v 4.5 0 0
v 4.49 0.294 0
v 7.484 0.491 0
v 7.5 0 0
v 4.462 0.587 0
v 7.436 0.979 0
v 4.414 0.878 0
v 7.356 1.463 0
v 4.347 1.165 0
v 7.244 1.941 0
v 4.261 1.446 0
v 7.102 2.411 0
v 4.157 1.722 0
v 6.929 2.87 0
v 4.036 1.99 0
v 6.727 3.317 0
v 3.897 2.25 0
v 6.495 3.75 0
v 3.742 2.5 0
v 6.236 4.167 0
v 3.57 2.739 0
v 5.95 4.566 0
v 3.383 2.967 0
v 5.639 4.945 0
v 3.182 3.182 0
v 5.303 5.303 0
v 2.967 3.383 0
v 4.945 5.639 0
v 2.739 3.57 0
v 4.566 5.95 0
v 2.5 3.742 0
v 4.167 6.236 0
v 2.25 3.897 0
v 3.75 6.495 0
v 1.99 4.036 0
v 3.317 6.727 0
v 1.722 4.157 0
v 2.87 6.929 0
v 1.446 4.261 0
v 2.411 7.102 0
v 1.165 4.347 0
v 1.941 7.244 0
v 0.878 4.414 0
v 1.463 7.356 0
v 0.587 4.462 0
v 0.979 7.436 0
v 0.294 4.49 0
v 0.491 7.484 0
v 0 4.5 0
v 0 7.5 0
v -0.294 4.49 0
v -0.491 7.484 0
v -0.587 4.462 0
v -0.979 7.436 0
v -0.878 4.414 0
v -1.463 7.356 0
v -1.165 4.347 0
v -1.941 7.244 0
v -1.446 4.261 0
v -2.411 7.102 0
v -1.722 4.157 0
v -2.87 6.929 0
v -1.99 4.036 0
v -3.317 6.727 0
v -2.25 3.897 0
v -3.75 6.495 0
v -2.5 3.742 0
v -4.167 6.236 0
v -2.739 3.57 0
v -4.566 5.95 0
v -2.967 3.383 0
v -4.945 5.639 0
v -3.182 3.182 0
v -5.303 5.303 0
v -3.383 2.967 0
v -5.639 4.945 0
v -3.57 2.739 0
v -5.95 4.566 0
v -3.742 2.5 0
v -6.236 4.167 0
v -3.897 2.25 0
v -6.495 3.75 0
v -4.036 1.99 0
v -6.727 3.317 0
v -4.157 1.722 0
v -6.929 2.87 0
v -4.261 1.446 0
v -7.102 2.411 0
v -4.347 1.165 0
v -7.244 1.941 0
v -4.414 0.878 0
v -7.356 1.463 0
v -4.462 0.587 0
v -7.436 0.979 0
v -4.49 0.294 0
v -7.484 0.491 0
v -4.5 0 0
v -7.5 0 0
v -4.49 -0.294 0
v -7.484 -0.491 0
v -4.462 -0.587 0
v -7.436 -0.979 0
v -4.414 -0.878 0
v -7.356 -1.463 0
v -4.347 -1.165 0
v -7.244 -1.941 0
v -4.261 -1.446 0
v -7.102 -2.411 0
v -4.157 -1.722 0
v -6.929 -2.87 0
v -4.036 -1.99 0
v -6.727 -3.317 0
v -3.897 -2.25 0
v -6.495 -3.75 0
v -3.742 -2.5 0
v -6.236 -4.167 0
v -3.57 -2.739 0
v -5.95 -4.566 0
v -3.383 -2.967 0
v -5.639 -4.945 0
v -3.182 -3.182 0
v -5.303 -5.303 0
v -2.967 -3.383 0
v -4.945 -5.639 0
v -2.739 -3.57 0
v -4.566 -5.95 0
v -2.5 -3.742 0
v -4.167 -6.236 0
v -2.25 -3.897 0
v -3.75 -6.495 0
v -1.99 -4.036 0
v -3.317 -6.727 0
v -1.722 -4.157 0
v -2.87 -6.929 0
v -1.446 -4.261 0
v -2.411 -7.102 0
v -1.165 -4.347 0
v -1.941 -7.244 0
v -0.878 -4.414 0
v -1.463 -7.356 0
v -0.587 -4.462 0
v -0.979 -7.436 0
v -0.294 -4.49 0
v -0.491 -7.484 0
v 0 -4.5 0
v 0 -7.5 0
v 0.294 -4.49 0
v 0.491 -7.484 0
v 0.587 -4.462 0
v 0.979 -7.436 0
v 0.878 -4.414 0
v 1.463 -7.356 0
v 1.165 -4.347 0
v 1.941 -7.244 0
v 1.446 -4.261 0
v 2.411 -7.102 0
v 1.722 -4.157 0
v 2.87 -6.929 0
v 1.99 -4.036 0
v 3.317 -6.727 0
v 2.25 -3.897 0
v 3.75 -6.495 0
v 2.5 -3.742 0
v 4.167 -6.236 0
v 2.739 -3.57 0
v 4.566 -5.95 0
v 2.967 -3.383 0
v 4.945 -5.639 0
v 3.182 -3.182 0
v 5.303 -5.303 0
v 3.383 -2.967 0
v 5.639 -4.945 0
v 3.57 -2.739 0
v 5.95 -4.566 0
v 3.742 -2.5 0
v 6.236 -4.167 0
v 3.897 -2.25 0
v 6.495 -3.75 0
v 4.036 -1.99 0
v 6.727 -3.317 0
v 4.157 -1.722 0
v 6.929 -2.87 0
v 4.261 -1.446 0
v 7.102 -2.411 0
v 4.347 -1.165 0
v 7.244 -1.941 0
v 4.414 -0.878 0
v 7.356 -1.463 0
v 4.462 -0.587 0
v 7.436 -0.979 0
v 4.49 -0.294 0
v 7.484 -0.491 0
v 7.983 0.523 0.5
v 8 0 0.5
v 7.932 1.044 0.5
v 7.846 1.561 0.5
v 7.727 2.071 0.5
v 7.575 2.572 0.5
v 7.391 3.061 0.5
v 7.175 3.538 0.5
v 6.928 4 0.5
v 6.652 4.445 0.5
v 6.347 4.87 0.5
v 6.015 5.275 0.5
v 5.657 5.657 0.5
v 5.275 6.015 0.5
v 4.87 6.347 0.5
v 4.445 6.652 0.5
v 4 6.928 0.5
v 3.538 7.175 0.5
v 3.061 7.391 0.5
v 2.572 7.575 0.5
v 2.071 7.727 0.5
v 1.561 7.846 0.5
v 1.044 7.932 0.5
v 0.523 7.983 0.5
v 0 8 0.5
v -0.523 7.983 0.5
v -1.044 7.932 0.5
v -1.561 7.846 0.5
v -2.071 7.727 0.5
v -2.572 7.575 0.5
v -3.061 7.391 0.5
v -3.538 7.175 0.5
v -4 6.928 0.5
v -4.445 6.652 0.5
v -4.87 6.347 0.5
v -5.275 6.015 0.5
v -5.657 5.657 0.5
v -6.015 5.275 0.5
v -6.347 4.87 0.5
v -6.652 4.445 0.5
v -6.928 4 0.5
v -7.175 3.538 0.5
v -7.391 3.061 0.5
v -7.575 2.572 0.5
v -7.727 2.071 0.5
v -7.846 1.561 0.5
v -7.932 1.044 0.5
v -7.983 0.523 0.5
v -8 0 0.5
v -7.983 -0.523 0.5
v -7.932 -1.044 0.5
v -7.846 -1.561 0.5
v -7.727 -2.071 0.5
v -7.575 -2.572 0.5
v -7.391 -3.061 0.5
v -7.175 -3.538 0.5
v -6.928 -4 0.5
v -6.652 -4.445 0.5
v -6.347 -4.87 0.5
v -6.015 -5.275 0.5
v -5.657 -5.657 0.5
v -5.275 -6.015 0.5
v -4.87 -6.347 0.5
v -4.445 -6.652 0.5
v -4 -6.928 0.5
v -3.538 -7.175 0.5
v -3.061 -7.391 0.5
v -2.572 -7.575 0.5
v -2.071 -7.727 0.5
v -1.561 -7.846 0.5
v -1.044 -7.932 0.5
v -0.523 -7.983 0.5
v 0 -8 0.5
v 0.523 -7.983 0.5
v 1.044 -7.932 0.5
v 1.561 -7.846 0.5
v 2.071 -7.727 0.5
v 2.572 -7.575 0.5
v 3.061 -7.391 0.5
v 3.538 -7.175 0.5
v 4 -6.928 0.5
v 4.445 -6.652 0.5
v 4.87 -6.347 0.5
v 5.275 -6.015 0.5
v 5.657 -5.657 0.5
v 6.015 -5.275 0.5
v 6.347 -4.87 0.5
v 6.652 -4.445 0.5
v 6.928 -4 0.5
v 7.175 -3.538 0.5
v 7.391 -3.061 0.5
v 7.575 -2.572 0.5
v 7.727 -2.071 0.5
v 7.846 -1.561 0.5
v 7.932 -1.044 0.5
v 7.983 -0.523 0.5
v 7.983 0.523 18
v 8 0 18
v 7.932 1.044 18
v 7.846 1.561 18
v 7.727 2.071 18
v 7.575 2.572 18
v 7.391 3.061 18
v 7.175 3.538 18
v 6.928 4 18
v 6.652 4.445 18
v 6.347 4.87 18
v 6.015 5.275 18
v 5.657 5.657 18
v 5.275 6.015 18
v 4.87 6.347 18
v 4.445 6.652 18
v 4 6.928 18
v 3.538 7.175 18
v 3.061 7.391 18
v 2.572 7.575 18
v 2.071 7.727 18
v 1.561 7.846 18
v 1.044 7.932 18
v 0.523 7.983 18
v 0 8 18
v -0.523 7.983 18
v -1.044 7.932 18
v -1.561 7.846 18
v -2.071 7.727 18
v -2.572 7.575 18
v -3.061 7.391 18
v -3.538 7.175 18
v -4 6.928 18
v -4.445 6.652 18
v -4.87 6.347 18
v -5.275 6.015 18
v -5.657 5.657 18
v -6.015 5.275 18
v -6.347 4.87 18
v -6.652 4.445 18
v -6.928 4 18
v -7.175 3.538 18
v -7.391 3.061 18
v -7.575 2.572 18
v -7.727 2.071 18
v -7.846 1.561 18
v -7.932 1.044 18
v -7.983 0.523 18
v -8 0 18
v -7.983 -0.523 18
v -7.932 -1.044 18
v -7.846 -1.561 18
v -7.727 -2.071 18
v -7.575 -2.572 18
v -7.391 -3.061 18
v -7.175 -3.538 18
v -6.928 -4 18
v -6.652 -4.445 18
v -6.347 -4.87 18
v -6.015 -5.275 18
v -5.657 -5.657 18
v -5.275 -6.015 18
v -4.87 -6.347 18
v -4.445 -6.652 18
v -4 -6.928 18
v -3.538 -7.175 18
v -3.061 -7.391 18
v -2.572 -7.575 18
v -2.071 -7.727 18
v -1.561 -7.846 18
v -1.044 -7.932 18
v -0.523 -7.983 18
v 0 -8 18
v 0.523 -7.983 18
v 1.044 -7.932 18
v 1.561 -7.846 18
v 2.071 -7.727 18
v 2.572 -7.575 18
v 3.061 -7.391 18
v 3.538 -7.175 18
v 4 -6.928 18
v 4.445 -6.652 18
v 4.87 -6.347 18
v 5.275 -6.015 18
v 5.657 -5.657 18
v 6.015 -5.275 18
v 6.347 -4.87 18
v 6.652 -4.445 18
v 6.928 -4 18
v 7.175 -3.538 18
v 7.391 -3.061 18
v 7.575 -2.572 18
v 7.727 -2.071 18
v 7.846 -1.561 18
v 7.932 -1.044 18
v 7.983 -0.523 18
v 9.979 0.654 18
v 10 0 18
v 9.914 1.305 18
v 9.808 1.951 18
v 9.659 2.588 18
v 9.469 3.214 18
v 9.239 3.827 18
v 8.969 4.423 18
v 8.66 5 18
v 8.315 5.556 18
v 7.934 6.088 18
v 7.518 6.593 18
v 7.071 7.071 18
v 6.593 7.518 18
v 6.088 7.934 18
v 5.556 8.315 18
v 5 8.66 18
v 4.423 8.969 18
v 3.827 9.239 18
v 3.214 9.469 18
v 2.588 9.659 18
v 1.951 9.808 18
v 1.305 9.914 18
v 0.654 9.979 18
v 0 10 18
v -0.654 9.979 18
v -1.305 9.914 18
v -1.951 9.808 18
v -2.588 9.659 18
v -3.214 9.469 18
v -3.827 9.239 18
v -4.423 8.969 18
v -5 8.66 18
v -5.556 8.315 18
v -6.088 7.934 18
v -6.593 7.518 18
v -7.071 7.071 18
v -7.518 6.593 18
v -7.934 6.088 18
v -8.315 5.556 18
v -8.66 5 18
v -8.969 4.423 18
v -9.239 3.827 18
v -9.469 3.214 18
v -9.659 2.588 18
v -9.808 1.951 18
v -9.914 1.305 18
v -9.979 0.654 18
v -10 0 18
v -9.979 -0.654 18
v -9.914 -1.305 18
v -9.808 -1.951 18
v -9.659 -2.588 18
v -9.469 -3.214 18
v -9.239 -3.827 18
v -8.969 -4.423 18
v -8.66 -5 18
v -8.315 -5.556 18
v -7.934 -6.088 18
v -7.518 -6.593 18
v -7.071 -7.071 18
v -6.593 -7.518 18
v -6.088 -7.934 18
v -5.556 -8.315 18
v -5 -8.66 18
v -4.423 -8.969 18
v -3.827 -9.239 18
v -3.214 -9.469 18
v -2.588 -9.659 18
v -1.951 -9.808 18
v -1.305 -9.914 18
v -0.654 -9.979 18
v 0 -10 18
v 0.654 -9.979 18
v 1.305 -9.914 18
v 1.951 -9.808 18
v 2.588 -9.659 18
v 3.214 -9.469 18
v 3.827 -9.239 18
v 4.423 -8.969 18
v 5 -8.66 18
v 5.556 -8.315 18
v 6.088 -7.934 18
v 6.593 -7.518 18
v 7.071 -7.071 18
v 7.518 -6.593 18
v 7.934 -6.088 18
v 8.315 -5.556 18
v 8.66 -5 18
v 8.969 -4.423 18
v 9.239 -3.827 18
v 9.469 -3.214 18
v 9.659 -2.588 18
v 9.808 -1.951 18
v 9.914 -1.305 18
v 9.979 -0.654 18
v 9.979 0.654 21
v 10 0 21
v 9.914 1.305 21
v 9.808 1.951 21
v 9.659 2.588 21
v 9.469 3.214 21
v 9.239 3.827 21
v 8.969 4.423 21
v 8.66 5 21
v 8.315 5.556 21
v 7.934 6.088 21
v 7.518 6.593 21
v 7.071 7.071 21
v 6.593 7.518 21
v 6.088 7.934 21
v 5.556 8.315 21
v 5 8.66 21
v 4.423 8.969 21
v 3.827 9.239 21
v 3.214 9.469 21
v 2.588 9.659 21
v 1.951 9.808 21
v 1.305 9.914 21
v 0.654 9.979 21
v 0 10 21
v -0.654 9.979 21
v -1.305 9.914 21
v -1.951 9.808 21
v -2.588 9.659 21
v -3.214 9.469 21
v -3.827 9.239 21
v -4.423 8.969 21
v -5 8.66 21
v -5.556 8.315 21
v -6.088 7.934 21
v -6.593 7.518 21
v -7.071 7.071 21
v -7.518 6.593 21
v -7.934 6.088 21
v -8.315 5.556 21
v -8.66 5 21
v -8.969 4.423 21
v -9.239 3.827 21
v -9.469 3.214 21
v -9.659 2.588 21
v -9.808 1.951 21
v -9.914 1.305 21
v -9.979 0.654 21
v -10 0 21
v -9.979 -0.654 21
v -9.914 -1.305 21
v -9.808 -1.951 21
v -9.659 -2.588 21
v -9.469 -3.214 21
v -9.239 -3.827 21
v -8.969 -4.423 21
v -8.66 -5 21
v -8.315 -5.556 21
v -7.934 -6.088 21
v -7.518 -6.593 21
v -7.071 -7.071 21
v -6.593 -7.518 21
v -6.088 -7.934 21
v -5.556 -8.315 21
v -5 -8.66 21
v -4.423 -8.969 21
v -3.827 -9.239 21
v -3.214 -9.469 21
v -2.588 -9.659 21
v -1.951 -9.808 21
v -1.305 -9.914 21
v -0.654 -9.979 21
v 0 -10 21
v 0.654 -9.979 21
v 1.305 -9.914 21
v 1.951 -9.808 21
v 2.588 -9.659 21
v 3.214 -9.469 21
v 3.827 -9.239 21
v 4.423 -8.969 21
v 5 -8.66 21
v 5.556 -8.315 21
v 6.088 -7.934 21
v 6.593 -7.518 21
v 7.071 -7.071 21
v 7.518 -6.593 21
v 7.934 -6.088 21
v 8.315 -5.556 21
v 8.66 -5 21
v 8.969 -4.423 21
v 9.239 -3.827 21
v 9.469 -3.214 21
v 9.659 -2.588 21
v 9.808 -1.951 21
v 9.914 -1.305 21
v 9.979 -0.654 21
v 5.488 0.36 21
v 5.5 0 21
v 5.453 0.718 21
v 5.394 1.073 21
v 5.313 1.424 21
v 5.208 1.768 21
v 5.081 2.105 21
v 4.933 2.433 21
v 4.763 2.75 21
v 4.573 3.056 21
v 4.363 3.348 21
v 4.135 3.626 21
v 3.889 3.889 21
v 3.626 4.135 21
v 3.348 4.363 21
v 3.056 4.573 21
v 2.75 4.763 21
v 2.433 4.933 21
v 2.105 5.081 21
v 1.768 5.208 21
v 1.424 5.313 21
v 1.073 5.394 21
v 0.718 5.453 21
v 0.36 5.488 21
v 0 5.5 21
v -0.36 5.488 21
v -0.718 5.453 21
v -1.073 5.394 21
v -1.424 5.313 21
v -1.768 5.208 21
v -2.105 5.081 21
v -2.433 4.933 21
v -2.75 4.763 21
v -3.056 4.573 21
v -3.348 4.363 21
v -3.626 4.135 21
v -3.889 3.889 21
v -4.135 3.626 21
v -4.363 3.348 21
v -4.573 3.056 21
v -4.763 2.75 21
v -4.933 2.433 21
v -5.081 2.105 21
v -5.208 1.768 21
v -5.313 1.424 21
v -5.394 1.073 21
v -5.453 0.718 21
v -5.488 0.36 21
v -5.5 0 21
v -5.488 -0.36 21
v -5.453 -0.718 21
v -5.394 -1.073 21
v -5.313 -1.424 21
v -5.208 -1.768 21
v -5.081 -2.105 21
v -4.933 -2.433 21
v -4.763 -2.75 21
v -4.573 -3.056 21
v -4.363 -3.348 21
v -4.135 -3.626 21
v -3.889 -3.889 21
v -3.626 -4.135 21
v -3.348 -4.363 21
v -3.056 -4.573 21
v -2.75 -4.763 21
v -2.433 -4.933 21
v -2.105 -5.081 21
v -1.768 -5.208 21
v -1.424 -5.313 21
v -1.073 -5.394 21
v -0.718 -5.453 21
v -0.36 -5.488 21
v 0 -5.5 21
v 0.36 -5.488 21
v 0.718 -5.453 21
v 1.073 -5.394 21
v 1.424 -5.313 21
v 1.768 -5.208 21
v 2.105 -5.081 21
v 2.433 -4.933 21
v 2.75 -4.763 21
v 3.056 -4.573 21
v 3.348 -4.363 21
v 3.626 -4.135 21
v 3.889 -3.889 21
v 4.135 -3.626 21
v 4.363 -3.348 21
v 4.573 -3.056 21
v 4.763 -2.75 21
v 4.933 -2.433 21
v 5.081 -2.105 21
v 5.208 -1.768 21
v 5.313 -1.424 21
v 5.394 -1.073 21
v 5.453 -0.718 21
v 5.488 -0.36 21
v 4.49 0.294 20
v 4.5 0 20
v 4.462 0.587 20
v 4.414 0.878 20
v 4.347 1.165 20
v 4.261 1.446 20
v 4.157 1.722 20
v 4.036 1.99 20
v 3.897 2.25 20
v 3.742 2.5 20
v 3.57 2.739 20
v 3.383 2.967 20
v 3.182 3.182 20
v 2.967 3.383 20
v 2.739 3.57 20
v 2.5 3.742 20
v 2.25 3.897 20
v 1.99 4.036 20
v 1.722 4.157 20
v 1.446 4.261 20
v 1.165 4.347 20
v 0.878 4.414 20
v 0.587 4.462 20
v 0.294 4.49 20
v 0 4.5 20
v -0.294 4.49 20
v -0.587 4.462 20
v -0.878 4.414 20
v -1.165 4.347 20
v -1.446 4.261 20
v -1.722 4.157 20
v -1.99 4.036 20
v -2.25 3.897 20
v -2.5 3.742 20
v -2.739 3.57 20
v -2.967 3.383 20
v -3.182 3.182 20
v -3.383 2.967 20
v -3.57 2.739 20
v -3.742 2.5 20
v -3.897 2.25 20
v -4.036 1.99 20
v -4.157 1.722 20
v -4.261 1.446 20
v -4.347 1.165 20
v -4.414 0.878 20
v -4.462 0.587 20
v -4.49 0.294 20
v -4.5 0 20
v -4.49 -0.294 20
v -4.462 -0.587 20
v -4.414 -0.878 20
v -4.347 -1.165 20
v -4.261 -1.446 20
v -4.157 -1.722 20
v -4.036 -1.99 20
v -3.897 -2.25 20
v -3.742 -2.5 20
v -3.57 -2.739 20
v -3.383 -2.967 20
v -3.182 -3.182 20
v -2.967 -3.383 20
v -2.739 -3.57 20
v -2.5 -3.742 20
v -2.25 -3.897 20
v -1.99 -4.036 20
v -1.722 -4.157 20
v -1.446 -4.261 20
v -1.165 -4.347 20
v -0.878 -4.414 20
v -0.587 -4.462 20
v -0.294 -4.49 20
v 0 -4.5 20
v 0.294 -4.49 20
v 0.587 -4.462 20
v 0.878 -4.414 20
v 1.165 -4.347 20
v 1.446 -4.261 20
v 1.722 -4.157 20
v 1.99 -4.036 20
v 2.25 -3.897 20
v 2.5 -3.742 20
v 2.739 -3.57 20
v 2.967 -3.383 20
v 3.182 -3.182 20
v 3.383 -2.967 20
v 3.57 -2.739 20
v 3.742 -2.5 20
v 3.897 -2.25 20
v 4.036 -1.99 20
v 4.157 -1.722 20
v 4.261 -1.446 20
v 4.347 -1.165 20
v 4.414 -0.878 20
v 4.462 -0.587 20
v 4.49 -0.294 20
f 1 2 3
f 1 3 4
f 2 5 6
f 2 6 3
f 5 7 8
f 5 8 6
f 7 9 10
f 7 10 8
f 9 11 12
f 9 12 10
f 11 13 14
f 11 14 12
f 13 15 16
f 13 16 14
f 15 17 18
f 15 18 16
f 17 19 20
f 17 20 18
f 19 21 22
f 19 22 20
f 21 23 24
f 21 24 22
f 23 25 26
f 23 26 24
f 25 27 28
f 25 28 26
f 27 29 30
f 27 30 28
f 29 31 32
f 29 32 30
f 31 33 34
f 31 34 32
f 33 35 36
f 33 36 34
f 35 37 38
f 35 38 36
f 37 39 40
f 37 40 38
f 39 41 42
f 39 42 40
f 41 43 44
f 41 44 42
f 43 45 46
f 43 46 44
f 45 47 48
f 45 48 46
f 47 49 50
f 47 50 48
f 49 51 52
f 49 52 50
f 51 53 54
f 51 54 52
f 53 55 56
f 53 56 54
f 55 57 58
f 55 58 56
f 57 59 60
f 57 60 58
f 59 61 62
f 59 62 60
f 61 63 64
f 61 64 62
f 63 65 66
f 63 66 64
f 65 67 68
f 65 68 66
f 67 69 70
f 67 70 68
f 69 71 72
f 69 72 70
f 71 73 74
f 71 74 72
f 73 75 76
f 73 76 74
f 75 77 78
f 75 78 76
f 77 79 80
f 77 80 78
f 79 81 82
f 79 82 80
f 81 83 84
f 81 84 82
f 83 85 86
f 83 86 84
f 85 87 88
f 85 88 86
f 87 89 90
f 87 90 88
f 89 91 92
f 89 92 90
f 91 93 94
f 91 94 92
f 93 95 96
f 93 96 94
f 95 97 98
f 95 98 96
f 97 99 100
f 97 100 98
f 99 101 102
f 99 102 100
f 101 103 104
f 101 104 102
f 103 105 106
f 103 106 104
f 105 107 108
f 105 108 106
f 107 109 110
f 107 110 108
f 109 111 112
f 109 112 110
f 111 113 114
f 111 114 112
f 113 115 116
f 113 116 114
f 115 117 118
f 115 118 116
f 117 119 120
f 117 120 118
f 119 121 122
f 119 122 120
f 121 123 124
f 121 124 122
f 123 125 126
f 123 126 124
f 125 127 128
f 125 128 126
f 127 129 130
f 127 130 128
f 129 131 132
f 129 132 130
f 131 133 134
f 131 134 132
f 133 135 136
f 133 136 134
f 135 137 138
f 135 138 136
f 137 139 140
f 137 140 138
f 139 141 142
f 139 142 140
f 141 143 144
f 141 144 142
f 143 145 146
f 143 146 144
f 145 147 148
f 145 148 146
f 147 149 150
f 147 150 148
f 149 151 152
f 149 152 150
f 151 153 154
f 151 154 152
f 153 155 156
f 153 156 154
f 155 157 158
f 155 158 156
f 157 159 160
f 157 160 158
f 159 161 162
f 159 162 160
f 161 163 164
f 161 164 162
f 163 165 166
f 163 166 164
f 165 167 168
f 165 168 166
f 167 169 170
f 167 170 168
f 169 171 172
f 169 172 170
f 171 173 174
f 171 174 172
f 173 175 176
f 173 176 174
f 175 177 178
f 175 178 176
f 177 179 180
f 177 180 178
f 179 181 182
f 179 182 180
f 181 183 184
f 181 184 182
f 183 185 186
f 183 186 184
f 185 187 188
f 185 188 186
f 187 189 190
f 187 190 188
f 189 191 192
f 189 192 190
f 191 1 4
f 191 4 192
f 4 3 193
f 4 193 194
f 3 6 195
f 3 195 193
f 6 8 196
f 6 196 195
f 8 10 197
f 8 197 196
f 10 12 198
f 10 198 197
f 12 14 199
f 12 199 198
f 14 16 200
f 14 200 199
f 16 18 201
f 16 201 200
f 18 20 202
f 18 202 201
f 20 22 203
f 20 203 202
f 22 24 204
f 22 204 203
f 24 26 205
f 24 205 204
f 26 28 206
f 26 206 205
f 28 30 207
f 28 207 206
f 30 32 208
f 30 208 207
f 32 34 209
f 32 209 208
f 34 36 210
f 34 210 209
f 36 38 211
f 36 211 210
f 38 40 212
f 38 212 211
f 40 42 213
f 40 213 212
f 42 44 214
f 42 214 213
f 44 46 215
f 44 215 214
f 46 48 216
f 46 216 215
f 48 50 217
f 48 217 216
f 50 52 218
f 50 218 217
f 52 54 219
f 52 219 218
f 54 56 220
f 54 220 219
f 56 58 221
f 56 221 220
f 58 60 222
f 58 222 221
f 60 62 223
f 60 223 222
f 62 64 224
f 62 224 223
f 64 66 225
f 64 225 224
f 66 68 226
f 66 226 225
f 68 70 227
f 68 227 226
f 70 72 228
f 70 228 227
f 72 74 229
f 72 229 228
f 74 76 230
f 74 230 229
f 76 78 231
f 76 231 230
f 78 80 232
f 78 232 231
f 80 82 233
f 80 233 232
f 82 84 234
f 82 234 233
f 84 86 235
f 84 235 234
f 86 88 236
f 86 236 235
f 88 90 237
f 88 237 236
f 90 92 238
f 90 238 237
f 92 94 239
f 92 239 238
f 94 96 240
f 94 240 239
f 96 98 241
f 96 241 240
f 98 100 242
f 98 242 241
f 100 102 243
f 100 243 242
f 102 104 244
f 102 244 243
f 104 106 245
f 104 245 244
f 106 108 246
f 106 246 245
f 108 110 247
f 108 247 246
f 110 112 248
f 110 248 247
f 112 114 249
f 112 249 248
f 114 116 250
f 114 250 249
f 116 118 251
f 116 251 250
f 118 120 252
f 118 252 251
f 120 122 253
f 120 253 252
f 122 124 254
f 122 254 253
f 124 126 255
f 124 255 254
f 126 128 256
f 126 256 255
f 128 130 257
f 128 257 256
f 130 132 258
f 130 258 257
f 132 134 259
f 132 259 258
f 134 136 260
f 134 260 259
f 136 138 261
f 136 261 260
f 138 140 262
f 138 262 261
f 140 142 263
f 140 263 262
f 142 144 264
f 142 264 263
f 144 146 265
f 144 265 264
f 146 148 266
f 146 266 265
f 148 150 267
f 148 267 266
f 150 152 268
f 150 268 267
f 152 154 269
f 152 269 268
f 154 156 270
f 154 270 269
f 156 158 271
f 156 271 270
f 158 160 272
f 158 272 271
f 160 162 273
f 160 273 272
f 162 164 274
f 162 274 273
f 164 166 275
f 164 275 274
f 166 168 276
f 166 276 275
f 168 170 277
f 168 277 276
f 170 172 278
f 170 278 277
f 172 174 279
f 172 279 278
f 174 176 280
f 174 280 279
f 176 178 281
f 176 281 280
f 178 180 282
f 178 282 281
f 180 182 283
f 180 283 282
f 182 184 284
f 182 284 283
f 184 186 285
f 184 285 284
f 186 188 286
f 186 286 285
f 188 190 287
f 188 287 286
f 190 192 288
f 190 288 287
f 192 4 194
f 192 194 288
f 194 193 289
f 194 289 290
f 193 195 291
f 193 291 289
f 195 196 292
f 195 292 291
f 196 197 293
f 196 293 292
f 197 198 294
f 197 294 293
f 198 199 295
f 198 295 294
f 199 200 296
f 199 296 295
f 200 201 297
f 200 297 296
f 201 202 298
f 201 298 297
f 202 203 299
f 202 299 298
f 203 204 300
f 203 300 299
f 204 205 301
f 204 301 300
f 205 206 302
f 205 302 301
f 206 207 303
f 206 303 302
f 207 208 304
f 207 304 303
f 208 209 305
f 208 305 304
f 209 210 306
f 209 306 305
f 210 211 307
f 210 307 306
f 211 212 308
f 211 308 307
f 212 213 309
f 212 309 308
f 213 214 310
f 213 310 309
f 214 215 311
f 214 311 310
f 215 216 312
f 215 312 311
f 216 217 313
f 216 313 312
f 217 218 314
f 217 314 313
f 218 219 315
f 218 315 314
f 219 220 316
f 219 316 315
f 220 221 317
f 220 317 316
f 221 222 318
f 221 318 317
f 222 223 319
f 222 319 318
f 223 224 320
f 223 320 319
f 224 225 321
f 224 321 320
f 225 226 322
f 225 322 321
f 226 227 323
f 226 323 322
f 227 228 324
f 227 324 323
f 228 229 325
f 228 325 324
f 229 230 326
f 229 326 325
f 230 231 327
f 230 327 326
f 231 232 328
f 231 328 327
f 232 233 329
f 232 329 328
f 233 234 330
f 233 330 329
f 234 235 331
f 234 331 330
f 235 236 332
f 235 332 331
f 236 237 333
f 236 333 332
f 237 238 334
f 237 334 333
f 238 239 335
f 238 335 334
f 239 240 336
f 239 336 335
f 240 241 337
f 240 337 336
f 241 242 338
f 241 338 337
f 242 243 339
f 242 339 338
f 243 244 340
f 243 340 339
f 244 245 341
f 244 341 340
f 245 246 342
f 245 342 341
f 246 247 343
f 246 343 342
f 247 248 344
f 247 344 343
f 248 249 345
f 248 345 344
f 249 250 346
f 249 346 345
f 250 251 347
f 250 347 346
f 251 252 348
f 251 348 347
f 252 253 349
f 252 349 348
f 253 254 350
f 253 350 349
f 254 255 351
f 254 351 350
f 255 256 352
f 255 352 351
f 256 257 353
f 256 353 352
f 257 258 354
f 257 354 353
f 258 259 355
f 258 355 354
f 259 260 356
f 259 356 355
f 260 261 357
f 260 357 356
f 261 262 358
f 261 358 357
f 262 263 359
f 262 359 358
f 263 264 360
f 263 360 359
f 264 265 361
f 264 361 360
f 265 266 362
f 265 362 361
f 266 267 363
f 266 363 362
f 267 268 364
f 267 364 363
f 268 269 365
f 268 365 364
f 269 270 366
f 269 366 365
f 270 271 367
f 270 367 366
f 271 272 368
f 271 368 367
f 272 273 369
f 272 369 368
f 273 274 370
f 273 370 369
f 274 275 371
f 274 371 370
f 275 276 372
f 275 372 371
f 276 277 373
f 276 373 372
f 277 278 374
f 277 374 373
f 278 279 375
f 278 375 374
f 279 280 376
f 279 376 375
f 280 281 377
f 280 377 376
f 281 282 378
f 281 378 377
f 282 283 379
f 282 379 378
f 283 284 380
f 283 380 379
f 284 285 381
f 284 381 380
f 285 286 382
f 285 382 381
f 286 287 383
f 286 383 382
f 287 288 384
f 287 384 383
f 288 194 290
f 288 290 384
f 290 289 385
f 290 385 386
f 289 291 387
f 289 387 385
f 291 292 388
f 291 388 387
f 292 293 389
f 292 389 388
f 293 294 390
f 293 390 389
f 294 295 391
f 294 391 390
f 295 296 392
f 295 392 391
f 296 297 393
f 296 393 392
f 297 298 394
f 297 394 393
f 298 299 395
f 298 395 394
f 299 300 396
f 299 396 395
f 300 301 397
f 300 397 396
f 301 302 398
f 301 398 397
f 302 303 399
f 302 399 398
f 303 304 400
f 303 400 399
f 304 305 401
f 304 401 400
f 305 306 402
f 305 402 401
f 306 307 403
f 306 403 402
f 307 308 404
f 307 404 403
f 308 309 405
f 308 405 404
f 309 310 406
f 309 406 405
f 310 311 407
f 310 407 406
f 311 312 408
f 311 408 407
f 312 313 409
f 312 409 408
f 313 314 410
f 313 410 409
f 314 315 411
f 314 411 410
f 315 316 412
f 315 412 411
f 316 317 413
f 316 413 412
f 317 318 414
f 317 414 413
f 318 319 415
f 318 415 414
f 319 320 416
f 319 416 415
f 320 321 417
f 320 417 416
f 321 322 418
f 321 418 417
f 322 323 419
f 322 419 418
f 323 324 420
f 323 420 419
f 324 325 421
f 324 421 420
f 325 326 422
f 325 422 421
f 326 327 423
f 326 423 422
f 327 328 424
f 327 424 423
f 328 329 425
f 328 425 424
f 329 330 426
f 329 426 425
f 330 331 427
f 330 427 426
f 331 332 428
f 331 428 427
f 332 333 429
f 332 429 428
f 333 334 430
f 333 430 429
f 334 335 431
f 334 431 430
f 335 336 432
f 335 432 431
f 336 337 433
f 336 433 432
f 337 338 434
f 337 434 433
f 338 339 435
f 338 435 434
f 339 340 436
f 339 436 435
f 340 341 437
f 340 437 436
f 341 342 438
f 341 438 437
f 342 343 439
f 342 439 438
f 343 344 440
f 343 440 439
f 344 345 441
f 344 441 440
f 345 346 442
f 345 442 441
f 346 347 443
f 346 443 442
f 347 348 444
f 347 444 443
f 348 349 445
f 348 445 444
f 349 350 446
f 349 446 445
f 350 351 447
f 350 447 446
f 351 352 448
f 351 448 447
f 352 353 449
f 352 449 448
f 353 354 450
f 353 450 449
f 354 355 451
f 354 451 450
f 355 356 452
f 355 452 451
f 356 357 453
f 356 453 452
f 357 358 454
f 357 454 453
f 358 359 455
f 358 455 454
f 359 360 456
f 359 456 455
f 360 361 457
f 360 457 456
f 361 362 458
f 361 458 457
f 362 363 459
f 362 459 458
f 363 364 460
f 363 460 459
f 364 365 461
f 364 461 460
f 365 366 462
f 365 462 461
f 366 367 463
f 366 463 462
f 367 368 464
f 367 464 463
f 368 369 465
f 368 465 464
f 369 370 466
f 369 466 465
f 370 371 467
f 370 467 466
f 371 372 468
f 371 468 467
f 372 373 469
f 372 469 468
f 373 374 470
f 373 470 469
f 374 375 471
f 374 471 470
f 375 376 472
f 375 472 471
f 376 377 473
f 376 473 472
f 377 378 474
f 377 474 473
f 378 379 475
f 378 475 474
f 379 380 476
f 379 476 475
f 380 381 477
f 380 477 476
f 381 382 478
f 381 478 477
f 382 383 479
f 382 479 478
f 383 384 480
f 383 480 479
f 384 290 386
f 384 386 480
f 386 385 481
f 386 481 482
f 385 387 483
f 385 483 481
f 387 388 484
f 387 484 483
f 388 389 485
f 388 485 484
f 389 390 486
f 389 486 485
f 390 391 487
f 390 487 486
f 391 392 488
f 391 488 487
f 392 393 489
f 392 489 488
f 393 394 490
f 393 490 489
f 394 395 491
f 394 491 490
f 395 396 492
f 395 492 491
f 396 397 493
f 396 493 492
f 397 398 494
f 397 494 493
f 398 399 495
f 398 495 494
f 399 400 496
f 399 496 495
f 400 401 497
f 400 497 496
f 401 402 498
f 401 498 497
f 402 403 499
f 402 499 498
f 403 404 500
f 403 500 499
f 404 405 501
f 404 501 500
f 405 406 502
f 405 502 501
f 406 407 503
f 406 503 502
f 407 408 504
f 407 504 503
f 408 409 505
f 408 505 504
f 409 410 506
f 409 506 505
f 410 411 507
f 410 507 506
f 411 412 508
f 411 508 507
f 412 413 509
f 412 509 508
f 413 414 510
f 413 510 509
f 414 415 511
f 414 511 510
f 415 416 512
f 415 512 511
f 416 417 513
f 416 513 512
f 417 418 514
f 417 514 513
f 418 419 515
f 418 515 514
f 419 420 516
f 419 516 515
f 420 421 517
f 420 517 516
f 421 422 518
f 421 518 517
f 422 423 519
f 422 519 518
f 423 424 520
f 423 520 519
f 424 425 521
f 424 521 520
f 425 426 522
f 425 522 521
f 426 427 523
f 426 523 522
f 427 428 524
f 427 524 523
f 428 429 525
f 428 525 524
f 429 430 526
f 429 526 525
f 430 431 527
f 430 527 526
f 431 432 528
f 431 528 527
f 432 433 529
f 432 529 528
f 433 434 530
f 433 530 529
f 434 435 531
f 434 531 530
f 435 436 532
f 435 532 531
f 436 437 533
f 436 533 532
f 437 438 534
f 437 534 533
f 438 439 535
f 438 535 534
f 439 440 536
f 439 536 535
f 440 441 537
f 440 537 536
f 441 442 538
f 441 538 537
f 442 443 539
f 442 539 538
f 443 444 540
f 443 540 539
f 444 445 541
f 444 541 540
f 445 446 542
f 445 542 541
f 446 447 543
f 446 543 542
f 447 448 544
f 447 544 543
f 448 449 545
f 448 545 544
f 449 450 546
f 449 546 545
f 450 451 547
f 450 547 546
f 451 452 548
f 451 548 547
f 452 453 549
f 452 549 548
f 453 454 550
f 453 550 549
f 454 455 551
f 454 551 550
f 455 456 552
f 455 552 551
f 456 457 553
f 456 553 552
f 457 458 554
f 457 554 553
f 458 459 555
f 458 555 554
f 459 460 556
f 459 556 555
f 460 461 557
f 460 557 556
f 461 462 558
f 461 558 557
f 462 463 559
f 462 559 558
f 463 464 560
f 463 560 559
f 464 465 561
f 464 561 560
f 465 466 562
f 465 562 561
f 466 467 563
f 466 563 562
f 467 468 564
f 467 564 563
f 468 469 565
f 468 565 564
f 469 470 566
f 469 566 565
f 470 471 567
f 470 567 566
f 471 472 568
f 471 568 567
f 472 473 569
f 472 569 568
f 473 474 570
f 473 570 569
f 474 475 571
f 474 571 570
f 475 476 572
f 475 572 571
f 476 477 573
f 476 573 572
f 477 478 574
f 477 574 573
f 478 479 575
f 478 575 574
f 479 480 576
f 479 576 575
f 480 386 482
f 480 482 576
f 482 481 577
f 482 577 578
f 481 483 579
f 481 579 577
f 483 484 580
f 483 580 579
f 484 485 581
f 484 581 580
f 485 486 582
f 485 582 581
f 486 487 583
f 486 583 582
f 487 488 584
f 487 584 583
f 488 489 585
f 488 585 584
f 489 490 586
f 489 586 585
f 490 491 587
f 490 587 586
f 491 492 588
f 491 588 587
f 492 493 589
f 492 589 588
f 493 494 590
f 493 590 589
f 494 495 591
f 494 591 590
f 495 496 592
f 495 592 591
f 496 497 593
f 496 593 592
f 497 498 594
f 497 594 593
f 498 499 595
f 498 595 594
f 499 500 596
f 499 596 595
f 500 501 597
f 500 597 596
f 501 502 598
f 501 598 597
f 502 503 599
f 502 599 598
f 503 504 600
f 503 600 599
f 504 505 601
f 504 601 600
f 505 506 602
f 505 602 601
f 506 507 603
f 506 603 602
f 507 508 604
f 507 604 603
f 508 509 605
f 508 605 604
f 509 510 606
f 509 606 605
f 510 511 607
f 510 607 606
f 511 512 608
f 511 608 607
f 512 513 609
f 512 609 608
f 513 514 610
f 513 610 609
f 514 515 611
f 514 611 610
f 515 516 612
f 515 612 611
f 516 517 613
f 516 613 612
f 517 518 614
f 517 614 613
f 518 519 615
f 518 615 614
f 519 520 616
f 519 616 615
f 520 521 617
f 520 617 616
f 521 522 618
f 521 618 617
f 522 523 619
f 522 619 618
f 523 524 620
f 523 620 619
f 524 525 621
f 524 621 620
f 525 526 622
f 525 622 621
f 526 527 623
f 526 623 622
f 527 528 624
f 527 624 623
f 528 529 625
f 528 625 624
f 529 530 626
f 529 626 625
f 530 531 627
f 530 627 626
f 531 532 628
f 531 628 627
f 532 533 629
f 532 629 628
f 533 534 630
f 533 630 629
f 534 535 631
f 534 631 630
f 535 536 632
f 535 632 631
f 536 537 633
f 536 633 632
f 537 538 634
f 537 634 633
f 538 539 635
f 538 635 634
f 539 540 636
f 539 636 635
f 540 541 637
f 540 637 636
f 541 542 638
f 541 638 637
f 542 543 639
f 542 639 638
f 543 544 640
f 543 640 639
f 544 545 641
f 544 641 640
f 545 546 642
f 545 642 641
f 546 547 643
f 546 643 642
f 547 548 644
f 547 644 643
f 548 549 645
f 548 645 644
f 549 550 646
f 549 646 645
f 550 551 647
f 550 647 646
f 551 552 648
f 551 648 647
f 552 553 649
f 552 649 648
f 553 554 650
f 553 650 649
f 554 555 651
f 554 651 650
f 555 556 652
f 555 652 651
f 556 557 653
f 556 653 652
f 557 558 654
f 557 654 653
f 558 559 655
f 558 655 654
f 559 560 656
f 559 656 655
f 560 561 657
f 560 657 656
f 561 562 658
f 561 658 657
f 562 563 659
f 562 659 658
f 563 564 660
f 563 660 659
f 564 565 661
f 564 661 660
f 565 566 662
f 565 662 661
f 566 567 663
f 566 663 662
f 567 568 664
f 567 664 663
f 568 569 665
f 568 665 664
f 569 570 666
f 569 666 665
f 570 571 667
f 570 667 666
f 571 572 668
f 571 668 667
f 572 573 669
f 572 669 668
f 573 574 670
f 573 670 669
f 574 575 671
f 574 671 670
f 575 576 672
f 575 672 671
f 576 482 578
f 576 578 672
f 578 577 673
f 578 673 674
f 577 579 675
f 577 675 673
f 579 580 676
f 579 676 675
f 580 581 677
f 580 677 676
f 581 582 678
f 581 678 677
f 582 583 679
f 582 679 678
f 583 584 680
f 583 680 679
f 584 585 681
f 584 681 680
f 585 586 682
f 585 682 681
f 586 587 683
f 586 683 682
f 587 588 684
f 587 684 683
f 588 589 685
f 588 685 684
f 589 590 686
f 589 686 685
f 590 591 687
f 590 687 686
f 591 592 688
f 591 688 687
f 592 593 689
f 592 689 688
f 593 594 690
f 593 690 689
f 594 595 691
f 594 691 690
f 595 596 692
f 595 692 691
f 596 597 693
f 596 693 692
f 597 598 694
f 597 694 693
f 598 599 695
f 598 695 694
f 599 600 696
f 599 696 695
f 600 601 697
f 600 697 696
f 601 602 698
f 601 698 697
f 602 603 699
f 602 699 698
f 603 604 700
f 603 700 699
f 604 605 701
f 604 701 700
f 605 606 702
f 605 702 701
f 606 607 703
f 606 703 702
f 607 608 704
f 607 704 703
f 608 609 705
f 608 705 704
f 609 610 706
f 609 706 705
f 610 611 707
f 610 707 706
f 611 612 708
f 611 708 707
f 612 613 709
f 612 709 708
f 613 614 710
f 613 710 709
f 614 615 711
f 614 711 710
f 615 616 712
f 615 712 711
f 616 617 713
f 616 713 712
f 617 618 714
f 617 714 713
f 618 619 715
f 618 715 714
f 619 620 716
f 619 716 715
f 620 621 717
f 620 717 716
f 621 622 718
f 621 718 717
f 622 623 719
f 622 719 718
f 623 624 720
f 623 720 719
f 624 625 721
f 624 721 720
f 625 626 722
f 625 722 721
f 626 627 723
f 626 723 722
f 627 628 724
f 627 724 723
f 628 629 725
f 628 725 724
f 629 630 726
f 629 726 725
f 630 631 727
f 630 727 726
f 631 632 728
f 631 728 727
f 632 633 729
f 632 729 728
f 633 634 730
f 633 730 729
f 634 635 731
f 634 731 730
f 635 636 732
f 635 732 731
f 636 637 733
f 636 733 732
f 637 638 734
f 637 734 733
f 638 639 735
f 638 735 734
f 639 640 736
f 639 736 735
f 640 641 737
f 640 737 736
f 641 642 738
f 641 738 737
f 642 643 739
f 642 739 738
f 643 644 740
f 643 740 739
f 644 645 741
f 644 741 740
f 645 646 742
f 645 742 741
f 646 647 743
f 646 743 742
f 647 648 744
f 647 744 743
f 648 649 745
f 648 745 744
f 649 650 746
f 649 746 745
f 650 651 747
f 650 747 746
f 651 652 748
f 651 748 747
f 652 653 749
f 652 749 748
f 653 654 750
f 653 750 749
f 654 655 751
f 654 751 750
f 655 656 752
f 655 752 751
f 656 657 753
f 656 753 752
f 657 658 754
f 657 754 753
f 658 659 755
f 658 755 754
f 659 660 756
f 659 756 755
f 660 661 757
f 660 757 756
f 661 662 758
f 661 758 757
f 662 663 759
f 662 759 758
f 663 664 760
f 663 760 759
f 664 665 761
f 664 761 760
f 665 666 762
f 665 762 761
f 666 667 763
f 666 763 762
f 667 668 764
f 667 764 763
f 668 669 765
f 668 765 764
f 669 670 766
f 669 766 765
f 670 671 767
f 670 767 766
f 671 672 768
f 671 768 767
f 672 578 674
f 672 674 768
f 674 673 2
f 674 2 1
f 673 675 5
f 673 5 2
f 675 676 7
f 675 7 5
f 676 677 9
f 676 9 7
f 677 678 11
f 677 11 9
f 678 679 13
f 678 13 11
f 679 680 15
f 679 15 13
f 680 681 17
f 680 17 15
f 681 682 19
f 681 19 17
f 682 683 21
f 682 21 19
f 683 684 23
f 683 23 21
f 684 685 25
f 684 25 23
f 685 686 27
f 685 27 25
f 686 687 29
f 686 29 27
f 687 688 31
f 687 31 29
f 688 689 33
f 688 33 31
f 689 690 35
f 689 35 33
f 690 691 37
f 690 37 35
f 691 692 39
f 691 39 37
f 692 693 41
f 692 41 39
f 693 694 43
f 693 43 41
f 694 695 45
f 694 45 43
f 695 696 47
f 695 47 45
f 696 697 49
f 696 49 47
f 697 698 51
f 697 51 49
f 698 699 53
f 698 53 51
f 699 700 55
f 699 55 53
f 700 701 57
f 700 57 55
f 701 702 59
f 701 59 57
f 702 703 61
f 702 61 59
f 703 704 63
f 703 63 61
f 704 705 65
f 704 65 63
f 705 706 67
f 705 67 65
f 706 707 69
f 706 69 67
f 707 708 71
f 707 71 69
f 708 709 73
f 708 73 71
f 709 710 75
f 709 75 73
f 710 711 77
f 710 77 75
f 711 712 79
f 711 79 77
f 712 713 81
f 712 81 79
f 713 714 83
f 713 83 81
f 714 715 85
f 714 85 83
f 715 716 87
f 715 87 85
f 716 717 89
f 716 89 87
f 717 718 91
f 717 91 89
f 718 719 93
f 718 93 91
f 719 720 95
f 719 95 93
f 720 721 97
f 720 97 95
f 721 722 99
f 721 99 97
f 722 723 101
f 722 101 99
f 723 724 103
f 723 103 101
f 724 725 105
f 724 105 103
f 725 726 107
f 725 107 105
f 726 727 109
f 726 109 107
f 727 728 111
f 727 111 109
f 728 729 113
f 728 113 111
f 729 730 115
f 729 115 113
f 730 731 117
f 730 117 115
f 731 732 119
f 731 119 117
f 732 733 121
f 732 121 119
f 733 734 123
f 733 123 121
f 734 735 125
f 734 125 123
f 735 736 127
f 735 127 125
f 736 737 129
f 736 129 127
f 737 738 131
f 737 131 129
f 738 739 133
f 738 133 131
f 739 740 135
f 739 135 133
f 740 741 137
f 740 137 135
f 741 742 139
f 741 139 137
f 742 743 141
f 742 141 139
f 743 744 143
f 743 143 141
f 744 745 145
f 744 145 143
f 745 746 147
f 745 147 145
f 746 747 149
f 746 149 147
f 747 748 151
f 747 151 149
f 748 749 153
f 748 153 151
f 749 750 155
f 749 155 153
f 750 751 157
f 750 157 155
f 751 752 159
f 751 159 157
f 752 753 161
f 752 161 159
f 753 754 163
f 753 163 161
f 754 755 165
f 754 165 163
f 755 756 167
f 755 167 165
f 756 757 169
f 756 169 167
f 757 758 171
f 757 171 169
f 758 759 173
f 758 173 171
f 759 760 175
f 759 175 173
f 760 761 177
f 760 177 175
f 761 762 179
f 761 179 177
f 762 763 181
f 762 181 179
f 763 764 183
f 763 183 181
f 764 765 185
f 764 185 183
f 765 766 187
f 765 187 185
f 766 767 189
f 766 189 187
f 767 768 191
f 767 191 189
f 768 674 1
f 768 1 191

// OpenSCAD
// Original MechIntel educational model. CC0-1.0. Units: mm.
// Not a standardized or load-rated component.
$fn=96;
// Section points: [radius, height], mm. Edit to change the profile.
section=[[4.5, 0], [7.5, 0], [8, 0.5], [8, 18], [10, 18], [10, 21], [5.5, 21], [4.5, 20]];
rotate_extrude($fn=96) polygon(points=section);
